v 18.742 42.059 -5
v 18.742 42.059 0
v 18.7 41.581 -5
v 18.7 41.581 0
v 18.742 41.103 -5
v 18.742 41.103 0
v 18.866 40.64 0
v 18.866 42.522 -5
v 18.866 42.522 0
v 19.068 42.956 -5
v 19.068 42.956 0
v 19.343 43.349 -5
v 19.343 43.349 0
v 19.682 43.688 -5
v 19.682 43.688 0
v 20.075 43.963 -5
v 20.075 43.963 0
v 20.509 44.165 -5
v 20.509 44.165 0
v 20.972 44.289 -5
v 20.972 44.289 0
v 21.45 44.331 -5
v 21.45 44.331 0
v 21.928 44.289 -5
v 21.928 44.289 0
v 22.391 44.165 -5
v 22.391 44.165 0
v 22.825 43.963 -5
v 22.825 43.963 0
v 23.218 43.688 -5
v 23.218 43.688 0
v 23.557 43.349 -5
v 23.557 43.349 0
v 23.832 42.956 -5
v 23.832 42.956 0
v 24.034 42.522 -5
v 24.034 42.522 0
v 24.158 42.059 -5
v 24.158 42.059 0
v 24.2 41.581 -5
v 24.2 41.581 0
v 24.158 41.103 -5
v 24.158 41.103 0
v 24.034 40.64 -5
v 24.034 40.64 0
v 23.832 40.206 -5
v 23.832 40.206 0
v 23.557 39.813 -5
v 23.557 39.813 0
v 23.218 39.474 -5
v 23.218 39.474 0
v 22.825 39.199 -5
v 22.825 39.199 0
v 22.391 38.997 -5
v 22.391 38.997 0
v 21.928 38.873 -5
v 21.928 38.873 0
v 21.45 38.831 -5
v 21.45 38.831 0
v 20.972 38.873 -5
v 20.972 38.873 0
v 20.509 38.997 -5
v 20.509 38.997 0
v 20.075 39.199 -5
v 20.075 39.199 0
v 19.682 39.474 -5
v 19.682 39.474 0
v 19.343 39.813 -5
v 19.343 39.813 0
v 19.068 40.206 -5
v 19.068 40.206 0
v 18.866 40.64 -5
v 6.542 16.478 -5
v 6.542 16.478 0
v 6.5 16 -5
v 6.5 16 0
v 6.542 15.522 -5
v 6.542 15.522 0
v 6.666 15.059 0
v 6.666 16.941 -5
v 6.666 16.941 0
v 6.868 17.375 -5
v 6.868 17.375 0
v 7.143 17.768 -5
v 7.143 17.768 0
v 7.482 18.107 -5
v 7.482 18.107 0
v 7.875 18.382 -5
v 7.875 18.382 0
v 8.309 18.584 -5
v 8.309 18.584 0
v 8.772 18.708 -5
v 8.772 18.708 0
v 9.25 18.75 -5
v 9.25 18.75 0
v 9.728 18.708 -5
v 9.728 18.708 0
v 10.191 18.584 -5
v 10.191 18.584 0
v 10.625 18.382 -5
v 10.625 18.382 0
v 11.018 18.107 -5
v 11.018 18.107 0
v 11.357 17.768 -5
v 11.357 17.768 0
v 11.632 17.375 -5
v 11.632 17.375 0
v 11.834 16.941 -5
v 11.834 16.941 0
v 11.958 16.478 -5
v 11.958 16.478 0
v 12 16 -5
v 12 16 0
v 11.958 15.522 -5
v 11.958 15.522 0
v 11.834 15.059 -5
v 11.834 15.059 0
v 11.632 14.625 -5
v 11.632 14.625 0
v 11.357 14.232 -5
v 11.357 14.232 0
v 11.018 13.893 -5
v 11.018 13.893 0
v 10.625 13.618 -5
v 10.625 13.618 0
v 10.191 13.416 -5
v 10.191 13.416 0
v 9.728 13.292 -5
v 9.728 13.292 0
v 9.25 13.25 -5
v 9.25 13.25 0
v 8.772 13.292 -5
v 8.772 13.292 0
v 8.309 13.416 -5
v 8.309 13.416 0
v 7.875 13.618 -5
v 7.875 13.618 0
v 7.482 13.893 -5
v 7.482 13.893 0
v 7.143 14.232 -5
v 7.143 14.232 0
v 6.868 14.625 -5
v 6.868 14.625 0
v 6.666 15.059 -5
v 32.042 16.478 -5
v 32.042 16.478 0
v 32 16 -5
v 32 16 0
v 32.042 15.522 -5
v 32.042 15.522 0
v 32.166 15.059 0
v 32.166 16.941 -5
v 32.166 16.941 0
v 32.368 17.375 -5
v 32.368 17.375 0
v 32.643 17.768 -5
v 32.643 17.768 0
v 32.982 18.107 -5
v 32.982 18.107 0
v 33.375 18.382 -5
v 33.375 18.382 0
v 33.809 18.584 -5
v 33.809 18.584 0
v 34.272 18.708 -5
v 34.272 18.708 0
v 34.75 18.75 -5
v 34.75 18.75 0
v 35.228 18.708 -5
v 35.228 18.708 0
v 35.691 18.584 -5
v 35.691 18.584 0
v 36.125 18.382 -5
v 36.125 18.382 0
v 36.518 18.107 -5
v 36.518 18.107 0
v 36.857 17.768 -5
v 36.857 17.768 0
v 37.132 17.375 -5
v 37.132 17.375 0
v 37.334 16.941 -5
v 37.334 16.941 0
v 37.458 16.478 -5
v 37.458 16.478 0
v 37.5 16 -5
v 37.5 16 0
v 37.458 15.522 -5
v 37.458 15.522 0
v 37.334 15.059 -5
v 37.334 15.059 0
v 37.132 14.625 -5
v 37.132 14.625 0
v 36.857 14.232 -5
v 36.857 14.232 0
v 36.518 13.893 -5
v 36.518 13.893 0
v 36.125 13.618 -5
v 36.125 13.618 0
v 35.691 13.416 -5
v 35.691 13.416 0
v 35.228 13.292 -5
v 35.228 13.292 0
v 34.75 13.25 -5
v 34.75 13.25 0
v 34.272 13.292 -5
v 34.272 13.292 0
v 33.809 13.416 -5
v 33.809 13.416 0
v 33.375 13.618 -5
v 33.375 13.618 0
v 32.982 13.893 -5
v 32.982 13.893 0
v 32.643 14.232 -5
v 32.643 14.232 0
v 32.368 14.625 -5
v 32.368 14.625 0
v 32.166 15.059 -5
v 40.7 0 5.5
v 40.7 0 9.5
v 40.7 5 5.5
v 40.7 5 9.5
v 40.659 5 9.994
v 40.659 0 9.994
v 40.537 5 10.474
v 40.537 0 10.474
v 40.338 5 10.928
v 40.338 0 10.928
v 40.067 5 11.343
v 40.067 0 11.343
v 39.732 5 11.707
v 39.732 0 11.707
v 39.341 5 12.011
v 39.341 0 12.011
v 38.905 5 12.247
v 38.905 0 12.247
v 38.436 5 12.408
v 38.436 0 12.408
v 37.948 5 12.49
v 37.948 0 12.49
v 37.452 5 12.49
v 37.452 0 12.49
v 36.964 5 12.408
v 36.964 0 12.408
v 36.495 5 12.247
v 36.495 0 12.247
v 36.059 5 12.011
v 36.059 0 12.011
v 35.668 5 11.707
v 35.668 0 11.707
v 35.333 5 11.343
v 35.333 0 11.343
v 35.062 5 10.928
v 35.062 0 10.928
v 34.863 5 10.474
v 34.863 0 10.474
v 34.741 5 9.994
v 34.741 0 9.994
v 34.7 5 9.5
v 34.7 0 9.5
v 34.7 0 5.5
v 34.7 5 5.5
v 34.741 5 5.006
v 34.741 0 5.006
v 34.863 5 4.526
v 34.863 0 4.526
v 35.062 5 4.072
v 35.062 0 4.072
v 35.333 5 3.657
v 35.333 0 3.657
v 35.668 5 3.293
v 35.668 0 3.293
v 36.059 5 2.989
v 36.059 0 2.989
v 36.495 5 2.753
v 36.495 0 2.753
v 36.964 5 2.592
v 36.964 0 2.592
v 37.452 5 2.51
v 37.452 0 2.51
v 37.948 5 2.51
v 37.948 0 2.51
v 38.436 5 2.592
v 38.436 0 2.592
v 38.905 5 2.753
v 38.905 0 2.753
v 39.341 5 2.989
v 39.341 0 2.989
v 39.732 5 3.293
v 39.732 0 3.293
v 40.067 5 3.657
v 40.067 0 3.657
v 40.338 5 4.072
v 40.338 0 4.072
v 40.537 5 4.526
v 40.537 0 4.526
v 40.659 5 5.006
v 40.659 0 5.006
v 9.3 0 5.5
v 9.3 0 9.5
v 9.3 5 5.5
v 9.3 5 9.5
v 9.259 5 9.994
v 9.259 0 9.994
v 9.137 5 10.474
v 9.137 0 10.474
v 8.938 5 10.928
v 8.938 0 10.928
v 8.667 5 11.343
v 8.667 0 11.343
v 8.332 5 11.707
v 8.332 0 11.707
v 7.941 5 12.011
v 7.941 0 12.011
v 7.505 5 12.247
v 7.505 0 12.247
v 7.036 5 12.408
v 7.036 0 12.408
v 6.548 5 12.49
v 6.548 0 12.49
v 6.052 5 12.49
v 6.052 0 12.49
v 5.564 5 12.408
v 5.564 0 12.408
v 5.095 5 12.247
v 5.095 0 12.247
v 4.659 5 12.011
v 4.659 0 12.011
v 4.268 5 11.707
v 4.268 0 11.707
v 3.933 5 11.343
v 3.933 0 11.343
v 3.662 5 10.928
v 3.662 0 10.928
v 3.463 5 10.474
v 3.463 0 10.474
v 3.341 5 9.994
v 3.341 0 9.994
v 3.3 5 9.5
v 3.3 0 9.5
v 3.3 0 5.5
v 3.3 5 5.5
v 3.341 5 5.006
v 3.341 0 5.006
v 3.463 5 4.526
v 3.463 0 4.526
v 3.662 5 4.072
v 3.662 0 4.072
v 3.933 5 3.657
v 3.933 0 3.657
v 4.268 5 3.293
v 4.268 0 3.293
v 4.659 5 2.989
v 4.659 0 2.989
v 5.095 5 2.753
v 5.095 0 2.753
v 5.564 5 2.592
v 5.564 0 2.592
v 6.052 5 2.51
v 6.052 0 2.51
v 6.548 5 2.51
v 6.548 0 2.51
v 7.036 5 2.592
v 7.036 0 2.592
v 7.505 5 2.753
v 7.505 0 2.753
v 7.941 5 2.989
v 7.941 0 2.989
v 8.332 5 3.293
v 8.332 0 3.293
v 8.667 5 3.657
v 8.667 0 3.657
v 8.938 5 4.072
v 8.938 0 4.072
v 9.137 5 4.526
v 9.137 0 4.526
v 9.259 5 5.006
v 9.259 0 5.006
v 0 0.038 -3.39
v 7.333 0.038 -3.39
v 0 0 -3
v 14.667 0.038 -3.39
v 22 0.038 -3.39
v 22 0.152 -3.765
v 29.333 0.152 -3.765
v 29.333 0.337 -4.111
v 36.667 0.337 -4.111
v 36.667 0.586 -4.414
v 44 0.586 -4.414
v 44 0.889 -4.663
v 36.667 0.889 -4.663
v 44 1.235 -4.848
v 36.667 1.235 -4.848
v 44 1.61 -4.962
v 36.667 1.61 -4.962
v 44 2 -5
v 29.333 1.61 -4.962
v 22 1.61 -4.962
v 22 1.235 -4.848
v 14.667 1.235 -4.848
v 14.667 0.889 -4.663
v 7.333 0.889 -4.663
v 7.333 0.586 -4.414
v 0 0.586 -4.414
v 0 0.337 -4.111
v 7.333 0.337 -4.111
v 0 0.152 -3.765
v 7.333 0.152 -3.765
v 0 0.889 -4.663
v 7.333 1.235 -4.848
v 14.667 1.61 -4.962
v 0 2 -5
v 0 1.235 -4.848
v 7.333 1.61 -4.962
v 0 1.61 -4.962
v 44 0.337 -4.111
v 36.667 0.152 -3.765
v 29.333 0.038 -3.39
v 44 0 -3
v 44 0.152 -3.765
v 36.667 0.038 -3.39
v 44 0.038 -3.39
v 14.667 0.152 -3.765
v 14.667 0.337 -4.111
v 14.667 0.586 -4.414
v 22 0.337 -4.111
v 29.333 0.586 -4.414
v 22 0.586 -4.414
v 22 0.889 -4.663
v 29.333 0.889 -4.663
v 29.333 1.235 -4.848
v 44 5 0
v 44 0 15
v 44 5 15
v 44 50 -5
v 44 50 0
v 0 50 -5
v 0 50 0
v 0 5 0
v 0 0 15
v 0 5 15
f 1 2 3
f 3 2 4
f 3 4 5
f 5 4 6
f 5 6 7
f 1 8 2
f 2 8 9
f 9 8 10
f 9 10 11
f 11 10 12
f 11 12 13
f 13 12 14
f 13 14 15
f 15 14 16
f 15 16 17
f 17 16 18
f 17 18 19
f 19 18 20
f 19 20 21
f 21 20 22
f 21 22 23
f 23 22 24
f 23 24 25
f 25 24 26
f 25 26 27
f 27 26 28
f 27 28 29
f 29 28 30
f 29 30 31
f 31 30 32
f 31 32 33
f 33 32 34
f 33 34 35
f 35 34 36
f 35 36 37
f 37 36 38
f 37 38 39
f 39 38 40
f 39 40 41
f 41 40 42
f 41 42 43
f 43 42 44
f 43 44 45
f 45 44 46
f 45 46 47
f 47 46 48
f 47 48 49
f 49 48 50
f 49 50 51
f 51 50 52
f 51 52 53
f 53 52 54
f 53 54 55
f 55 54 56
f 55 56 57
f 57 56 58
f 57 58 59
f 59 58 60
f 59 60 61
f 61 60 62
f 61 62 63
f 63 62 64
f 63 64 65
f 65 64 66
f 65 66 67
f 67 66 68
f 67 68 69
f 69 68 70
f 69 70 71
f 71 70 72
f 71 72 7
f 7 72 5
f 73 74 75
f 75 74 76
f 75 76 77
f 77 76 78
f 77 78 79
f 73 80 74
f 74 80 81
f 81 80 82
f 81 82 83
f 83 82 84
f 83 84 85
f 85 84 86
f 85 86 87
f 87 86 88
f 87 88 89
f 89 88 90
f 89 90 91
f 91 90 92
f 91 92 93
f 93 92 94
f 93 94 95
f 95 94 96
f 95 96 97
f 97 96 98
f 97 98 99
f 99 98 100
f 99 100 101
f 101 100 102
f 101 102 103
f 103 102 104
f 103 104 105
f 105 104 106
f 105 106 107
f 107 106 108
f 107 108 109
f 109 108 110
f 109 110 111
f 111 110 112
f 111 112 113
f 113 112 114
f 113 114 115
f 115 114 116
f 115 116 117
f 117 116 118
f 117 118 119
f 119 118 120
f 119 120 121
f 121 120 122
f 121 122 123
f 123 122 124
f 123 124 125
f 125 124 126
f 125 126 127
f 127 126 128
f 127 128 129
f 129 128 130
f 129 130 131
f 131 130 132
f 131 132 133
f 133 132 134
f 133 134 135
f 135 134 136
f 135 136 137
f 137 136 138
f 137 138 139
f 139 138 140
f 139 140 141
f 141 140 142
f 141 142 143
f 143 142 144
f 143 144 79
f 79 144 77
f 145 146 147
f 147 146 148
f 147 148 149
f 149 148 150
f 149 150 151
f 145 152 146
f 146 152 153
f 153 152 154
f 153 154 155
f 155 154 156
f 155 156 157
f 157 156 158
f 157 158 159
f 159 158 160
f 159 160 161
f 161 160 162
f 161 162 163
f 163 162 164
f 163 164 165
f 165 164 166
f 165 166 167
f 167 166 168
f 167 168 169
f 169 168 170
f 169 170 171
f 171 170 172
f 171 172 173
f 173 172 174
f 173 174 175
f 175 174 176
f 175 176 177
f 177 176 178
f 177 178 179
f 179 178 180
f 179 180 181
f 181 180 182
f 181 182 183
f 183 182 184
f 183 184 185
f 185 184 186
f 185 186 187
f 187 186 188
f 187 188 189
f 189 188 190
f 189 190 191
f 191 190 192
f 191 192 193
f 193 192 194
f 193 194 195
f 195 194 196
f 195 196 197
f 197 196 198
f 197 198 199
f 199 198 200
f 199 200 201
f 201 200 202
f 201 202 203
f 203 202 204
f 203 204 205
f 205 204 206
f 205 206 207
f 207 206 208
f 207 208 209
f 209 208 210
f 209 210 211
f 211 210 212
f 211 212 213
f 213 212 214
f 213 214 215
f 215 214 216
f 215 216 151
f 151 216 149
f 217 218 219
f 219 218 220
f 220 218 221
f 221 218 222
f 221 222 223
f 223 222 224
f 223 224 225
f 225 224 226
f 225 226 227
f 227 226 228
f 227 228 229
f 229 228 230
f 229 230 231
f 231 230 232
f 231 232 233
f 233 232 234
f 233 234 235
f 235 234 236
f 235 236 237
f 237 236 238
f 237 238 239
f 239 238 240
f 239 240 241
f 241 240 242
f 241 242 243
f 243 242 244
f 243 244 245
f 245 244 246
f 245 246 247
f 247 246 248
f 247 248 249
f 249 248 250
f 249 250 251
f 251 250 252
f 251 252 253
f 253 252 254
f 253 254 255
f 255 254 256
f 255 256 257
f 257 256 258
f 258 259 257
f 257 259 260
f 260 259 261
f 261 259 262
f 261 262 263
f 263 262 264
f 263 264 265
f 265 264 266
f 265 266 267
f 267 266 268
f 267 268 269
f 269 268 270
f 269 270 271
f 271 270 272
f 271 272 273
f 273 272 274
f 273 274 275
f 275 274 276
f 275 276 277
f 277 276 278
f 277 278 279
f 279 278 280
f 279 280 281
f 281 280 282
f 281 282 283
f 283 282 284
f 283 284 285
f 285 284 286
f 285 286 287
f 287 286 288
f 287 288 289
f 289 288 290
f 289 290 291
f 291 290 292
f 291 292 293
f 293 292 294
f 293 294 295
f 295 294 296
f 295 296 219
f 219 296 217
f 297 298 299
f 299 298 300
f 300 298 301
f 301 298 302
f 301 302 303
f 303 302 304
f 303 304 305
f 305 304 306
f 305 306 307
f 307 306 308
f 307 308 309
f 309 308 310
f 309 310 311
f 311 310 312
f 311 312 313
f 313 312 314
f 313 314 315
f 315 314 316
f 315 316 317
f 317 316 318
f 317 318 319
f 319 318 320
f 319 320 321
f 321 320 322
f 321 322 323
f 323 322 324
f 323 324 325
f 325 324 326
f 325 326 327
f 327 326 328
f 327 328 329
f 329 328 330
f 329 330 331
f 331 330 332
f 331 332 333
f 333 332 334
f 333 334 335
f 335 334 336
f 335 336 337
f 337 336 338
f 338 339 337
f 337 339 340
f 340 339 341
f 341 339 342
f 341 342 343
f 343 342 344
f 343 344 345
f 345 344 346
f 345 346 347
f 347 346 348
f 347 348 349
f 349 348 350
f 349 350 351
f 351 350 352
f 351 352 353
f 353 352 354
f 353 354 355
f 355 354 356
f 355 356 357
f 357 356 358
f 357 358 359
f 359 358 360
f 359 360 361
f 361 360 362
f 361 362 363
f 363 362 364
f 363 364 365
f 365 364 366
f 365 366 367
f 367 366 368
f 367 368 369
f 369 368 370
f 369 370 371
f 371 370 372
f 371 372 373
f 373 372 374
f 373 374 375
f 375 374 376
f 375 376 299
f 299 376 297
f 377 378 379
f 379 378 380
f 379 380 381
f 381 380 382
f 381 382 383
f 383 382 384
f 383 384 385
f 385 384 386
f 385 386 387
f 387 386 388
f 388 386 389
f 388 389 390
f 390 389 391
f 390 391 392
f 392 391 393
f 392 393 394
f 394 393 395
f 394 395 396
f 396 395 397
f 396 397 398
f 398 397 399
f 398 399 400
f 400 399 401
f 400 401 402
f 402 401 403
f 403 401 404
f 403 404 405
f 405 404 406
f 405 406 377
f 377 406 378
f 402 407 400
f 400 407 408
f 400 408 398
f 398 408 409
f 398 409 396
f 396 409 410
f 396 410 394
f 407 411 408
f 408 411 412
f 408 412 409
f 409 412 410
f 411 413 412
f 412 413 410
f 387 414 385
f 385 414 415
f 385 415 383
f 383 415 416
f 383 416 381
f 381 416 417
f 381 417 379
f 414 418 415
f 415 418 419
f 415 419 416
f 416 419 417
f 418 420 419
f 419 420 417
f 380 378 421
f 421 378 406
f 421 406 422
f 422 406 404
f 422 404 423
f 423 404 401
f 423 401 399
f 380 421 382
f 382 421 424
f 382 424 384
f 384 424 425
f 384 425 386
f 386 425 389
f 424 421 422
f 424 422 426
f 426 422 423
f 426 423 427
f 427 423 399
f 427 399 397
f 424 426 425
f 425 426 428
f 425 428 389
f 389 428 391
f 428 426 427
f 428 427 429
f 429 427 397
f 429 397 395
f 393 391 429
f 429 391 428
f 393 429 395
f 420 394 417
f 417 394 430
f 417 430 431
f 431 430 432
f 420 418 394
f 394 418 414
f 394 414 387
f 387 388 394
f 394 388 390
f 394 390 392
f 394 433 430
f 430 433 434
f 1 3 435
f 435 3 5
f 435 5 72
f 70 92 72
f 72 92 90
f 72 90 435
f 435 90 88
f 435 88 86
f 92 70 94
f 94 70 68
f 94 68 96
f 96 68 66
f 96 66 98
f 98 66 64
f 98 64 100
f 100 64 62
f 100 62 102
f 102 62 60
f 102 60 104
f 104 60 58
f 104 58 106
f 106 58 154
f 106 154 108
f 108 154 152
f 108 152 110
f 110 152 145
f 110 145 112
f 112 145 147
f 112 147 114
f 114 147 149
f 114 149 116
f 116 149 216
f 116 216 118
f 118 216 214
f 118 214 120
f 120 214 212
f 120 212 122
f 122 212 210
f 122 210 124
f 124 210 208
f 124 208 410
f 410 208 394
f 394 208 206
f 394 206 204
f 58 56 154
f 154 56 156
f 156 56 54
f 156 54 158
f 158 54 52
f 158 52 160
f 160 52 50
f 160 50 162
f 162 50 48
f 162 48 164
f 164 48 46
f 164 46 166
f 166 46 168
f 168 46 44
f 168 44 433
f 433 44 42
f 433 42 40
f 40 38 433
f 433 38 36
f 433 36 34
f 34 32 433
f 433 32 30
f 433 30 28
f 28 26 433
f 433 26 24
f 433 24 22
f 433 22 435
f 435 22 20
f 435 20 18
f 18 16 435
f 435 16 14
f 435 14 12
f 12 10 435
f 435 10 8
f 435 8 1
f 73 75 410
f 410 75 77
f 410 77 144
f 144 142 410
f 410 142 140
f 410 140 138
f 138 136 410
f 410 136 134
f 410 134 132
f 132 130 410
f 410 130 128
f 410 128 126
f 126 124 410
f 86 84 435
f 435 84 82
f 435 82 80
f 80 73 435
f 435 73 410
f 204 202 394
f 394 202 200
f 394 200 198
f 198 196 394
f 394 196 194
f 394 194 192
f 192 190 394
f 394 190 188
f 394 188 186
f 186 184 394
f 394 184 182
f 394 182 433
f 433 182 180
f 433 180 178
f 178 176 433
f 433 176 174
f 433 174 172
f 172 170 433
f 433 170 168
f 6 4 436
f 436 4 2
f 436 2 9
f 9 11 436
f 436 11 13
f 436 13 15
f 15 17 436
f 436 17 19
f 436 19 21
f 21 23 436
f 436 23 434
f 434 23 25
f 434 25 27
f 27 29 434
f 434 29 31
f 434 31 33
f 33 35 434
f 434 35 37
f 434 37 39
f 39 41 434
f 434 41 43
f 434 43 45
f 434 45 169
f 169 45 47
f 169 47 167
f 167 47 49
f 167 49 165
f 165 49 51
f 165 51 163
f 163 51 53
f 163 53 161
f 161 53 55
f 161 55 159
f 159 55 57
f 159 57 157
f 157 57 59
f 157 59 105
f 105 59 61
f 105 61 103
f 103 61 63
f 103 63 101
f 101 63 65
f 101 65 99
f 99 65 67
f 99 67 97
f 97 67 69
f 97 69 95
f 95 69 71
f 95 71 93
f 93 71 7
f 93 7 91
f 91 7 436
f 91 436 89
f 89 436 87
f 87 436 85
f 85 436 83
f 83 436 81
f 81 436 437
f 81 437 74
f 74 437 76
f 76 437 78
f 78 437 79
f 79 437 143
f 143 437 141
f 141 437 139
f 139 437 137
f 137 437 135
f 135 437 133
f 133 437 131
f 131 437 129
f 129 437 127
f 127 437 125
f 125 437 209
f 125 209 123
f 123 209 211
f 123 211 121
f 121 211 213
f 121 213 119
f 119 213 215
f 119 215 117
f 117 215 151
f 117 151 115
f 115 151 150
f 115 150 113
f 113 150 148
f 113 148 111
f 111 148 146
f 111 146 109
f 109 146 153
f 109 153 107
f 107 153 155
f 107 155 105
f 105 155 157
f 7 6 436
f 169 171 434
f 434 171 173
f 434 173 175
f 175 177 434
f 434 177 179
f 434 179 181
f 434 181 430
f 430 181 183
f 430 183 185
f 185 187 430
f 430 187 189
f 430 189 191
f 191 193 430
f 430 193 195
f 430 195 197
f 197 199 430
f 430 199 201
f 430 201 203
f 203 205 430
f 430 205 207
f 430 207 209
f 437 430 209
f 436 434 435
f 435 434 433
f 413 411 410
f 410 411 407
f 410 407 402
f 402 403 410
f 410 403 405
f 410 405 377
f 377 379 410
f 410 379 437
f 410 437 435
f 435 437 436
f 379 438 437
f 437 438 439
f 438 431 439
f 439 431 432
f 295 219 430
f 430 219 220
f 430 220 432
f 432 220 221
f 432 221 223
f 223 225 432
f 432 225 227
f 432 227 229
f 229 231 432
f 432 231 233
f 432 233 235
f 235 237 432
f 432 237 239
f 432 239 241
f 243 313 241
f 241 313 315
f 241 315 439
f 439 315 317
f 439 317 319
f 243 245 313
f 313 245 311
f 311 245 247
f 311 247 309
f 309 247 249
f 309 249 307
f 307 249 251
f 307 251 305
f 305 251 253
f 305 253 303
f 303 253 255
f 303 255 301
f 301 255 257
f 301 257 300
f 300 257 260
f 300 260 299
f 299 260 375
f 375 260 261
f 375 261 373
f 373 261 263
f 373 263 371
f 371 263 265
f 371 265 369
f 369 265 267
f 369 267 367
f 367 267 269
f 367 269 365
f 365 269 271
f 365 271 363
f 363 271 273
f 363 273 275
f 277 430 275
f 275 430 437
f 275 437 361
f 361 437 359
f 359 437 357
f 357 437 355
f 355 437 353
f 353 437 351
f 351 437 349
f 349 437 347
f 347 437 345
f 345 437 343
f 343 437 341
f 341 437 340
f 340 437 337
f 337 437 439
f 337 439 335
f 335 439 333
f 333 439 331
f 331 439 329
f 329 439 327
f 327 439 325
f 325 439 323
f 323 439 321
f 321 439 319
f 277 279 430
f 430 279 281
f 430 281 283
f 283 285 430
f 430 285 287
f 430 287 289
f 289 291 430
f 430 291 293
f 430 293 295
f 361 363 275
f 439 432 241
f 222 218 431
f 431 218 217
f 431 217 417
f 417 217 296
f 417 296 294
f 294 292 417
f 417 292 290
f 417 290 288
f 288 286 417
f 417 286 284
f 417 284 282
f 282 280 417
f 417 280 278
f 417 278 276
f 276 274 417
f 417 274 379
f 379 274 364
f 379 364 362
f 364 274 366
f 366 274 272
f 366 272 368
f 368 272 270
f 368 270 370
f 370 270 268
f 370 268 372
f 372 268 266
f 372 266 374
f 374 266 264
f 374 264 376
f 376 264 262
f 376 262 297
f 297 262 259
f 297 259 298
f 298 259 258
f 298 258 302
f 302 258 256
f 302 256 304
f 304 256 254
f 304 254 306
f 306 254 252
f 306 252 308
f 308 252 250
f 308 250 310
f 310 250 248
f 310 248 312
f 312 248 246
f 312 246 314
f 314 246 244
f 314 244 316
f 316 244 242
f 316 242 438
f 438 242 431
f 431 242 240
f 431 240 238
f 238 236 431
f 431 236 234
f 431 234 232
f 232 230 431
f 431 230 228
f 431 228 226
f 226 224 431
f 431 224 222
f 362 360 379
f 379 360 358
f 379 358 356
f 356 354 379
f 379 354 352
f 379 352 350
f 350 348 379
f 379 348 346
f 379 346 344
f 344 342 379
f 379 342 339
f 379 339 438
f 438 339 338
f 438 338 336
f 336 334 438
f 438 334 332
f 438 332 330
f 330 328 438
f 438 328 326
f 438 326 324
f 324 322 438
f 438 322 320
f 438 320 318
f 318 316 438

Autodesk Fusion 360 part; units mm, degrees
sketch "スケッチ1" plane through (0, 0, 0) normal (0, 1, 0) x (1, 0, 0)
  line L0 (0, 0) -> (44, 0)
  line L1 (44, 0) -> (44, -15)
  line L2 (44, -15) -> (0, -15)
  line L3 (0, -15) -> (0, 0)
  dimension "d1" = 44
  dimension "d2" = 15
sketch "スケッチ2" plane through (0, 0, 0) normal (0, 0, 1) x (1, 0, 0)
  line L0 (0, 0) -> (44, 0)
  line L1 (44, 0) -> (44, 50)
  line L2 (44, 50) -> (0, 50)
  line L3 (0, 50) -> (0, 0)
  dimension "d3" = 44
  dimension "d4" = 50
extrude "押し出し1" add sketch "スケッチ1" along normal blind 5
extrude "押し出し2" add sketch "スケッチ2" against normal blind 5
fillet "フィレット1" radius 2 1 edges at (22, 0, -5)
sketch "スケッチ3" plane through (0, 0, 0) normal (0, 1, 0) x (1, 0, 0)
sketch "スケッチ4" plane through (0, 0, 0) normal (0, 1, 0) x (1, 0, 0)
  line L0 (6.3, -2.5) -> (6.3, -2.5)
  line L1 (9.3, -5.5) -> (9.3, -9.5)
  line L2 (6.3, -12.5) -> (6.3, -12.5)
  line L3 (3.3, -9.5) -> (3.3, -5.5)
  arc A0 (6.3, -2.5) -> (3.3, -5.5) centre (6.3, -5.5) ccw
  arc A1 (9.3, -5.5) -> (6.3, -2.5) centre (6.3, -5.5) ccw
  arc A2 (6.3, -12.5) -> (9.3, -9.5) centre (6.3, -9.5) ccw
  arc A3 (3.3, -9.5) -> (6.3, -12.5) centre (6.3, -9.5) ccw
  arc A4 (34.7, -9.5) -> (37.7, -12.5) centre (37.7, -9.5) ccw
  line L4 (37.7, -2.5) -> (37.7, -2.5)
  line L5 (34.7, -9.5) -> (34.7, -5.5)
  arc A5 (40.7, -5.5) -> (37.7, -2.5) centre (37.7, -5.5) ccw
  line L6 (40.7, -5.5) -> (40.7, -9.5)
  arc A6 (37.7, -12.5) -> (40.7, -9.5) centre (37.7, -9.5) ccw
  line L7 (37.7, -12.5) -> (37.7, -12.5)
  arc A7 (37.7, -2.5) -> (34.7, -5.5) centre (37.7, -5.5) ccw
  point P0 (3.3, -2.5)
  point P1 (9.3, -2.5)
  point P2 (3.3, -12.5)
  point P3 (34.7, -2.5)
  point P4 (40.7, -2.5)
  point P5 (34.7, -12.5)
  dimension "d11" = 6
  dimension "d12" = 10
  dimension "d13" = 3
  dimension "d14" = 6
  dimension "d15" = 10
  dimension "d16" = 3
extrude "押し出し3" cut sketch "スケッチ4" along normal blind 5
sketch "スケッチ5" plane through (0, 0, 0) normal (0, 0, 1) x (1, 0, 0)
  circle A0 centre (9.25, 16) radius 2.75
  circle A1 centre (34.75, 16) radius 2.75
  circle A2 centre (21.45, 41.581) radius 2.75
  dimension "d19" = 5.5
  dimension "d20" = 5.5
  dimension "d21" = 5.5
extrude "押し出し5" cut sketch "スケッチ5" against normal blind 5
extrude "押し出し4" [suppressed]
